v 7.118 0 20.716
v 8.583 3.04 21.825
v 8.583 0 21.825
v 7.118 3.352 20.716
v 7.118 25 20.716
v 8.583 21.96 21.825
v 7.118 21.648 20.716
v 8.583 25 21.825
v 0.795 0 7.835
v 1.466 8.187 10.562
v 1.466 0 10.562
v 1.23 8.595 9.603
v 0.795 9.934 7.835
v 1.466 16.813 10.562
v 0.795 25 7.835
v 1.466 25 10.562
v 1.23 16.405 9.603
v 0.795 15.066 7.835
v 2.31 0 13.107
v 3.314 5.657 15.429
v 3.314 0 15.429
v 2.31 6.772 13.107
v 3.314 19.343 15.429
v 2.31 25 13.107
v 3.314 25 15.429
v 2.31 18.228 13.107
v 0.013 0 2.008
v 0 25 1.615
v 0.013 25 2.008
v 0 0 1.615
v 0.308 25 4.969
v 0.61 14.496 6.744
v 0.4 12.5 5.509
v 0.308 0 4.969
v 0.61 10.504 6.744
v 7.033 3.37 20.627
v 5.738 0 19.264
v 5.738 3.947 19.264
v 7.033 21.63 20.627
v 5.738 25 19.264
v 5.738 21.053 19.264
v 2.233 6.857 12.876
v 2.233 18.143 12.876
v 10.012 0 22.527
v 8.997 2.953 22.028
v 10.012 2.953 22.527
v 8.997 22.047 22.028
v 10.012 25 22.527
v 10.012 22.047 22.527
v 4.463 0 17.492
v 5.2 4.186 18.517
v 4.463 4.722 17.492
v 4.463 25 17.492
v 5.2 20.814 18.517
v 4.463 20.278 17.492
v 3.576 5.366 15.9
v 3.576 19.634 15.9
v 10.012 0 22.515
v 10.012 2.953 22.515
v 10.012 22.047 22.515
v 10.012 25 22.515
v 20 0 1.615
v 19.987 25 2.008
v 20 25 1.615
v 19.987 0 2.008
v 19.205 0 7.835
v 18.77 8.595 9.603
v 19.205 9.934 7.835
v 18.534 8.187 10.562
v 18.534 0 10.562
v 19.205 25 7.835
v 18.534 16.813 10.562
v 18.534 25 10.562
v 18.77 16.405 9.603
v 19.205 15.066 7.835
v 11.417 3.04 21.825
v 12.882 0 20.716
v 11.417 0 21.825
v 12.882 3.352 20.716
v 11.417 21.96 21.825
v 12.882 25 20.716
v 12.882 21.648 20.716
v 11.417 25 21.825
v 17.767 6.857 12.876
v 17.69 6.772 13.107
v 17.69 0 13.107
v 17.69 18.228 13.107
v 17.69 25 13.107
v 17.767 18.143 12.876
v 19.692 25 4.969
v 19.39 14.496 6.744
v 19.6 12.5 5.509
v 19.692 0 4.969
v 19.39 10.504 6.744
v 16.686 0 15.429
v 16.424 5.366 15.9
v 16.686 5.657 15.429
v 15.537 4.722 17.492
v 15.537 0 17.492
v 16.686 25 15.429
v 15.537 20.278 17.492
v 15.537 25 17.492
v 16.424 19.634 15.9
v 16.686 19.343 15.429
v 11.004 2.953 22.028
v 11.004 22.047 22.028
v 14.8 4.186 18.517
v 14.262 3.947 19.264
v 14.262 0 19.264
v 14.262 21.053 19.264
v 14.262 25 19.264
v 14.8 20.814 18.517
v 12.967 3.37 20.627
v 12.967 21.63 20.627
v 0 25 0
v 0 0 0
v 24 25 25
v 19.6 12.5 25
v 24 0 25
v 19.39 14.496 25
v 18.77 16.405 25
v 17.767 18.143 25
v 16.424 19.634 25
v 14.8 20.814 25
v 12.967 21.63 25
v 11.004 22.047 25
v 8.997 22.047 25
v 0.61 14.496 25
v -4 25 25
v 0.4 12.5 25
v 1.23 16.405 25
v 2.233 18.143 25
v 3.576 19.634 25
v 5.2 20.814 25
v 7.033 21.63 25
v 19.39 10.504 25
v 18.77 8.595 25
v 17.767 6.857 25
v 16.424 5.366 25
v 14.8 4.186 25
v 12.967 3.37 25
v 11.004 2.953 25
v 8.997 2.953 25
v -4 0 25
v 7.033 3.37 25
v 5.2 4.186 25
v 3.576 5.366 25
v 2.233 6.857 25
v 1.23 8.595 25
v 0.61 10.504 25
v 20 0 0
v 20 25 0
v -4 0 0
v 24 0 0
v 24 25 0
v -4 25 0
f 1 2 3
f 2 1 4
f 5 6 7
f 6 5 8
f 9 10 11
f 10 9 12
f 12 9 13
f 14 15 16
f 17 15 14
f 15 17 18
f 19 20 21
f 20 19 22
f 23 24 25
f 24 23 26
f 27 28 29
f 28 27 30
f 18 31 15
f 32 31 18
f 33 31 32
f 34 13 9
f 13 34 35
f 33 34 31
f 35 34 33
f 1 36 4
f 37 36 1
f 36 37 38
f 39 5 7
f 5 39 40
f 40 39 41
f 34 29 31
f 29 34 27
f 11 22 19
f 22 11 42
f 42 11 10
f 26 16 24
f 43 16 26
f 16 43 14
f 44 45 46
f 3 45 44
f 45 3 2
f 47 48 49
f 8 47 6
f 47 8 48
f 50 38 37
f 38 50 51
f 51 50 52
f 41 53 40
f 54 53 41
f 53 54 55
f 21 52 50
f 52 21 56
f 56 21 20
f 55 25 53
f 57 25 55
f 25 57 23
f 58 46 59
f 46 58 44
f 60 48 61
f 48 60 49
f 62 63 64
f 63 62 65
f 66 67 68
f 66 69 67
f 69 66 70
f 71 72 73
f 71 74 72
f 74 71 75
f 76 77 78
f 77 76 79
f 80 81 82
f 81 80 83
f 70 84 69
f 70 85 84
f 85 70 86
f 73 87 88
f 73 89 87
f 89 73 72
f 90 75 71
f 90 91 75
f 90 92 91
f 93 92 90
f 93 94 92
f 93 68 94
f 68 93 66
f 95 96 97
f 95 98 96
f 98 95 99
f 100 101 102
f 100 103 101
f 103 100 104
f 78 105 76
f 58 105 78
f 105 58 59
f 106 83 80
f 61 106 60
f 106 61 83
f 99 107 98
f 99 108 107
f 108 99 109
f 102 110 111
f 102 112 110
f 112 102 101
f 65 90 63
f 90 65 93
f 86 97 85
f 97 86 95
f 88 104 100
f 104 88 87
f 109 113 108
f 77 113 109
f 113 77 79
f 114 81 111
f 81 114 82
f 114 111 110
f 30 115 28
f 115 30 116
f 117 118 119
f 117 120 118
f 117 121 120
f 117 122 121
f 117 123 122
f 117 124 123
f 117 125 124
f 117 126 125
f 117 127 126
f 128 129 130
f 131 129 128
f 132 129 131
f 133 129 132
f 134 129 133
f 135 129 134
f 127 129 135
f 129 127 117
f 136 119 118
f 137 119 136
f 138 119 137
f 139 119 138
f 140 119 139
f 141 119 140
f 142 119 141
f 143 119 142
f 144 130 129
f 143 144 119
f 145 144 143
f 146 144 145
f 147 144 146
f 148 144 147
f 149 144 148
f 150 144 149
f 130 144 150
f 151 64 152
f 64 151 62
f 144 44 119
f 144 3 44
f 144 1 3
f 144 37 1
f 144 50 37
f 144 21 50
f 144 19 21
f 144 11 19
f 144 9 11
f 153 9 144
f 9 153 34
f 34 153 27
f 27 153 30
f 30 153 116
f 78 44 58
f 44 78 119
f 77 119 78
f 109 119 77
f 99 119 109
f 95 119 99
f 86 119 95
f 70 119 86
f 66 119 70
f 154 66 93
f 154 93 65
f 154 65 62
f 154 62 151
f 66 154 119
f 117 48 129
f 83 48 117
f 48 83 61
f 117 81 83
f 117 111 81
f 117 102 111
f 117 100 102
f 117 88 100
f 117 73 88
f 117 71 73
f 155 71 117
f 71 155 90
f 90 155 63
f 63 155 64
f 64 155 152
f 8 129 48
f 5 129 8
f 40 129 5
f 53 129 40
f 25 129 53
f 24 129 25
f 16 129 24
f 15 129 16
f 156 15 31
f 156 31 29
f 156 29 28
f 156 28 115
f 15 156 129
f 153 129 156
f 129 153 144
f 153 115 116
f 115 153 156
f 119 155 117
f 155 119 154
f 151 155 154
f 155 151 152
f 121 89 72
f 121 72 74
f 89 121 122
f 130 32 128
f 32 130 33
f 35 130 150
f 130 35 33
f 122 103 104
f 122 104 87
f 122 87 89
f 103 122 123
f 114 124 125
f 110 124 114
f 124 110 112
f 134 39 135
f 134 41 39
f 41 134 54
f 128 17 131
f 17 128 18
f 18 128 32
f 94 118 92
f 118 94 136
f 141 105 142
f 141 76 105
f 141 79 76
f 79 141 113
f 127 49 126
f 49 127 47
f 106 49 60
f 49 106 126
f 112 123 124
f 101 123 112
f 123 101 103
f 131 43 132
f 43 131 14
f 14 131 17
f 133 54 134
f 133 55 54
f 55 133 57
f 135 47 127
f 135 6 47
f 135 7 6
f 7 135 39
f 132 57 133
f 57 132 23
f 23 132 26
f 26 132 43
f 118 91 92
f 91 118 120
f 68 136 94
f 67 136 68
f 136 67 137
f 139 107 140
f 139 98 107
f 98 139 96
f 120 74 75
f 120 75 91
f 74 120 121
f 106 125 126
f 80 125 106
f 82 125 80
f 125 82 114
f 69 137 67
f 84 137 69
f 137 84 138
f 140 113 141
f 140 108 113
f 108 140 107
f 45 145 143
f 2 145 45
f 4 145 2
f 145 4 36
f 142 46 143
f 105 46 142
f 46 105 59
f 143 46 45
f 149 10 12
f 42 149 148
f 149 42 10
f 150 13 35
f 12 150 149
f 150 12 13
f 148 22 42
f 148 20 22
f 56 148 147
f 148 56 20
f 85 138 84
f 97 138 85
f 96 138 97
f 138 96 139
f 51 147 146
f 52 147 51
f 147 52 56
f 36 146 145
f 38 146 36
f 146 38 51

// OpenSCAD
// file: ../../template/science/testtube_neg.scad
module testtube() {
    union() {
        cylinder(160, 9.6, 9.6);
        scale([1, 1, 0.7]) {
            sphere(9.6);
        }
    }
}
// main file
use <../../template/science/testtube_neg.scad>

module gothic_left() {
difference() {
    translate([2, 0, 0]) {
        rotate([90,0,0]) {
            scale([0.51,1,1]) {
                cylinder(40, 20, 20, $fn=50);
            }
        }
    }
    translate([0.01, -100, -1]) {
        cube([100,120,200]);
    }
    translate([-50, -99, -100]) {
        cube([100,100,100]);
    }
}
                  
    
}
module gothic_right() {
difference() {
    translate([-2, 0, 0]) {
        rotate([90,0,0]) {
            scale([0.51,1,1]) {
                cylinder(40, 20, 20, $fn=50);
            }
        }
    }
    translate([-100, -100, -1]) {
        cube([100,120,200]);
    }
    translate([-50, -99, -100]) {
        cube([100,100,100]);
    }
}
}

module gothic() {
    union() {
        gothic_left();
        gothic_right();    
    }
}

module top_holder() {
    difference() {
        cube([20, 25, 25]);
        translate([10,26,-1]) {
            scale([1.23,1,1.2]) {
                gothic();
            }
        }
    }
}

difference() {
    
    union() {
        color("blue", 1) {
            top_holder();
        }
    translate([-4,0,0]) {
        cube([4, 25, 25]);
    }
    translate([20,0,0]) {
        cube([4, 25, 25]);
    }
    }
    translate([10,12.5,5]) {
        testtube();
    }
}
